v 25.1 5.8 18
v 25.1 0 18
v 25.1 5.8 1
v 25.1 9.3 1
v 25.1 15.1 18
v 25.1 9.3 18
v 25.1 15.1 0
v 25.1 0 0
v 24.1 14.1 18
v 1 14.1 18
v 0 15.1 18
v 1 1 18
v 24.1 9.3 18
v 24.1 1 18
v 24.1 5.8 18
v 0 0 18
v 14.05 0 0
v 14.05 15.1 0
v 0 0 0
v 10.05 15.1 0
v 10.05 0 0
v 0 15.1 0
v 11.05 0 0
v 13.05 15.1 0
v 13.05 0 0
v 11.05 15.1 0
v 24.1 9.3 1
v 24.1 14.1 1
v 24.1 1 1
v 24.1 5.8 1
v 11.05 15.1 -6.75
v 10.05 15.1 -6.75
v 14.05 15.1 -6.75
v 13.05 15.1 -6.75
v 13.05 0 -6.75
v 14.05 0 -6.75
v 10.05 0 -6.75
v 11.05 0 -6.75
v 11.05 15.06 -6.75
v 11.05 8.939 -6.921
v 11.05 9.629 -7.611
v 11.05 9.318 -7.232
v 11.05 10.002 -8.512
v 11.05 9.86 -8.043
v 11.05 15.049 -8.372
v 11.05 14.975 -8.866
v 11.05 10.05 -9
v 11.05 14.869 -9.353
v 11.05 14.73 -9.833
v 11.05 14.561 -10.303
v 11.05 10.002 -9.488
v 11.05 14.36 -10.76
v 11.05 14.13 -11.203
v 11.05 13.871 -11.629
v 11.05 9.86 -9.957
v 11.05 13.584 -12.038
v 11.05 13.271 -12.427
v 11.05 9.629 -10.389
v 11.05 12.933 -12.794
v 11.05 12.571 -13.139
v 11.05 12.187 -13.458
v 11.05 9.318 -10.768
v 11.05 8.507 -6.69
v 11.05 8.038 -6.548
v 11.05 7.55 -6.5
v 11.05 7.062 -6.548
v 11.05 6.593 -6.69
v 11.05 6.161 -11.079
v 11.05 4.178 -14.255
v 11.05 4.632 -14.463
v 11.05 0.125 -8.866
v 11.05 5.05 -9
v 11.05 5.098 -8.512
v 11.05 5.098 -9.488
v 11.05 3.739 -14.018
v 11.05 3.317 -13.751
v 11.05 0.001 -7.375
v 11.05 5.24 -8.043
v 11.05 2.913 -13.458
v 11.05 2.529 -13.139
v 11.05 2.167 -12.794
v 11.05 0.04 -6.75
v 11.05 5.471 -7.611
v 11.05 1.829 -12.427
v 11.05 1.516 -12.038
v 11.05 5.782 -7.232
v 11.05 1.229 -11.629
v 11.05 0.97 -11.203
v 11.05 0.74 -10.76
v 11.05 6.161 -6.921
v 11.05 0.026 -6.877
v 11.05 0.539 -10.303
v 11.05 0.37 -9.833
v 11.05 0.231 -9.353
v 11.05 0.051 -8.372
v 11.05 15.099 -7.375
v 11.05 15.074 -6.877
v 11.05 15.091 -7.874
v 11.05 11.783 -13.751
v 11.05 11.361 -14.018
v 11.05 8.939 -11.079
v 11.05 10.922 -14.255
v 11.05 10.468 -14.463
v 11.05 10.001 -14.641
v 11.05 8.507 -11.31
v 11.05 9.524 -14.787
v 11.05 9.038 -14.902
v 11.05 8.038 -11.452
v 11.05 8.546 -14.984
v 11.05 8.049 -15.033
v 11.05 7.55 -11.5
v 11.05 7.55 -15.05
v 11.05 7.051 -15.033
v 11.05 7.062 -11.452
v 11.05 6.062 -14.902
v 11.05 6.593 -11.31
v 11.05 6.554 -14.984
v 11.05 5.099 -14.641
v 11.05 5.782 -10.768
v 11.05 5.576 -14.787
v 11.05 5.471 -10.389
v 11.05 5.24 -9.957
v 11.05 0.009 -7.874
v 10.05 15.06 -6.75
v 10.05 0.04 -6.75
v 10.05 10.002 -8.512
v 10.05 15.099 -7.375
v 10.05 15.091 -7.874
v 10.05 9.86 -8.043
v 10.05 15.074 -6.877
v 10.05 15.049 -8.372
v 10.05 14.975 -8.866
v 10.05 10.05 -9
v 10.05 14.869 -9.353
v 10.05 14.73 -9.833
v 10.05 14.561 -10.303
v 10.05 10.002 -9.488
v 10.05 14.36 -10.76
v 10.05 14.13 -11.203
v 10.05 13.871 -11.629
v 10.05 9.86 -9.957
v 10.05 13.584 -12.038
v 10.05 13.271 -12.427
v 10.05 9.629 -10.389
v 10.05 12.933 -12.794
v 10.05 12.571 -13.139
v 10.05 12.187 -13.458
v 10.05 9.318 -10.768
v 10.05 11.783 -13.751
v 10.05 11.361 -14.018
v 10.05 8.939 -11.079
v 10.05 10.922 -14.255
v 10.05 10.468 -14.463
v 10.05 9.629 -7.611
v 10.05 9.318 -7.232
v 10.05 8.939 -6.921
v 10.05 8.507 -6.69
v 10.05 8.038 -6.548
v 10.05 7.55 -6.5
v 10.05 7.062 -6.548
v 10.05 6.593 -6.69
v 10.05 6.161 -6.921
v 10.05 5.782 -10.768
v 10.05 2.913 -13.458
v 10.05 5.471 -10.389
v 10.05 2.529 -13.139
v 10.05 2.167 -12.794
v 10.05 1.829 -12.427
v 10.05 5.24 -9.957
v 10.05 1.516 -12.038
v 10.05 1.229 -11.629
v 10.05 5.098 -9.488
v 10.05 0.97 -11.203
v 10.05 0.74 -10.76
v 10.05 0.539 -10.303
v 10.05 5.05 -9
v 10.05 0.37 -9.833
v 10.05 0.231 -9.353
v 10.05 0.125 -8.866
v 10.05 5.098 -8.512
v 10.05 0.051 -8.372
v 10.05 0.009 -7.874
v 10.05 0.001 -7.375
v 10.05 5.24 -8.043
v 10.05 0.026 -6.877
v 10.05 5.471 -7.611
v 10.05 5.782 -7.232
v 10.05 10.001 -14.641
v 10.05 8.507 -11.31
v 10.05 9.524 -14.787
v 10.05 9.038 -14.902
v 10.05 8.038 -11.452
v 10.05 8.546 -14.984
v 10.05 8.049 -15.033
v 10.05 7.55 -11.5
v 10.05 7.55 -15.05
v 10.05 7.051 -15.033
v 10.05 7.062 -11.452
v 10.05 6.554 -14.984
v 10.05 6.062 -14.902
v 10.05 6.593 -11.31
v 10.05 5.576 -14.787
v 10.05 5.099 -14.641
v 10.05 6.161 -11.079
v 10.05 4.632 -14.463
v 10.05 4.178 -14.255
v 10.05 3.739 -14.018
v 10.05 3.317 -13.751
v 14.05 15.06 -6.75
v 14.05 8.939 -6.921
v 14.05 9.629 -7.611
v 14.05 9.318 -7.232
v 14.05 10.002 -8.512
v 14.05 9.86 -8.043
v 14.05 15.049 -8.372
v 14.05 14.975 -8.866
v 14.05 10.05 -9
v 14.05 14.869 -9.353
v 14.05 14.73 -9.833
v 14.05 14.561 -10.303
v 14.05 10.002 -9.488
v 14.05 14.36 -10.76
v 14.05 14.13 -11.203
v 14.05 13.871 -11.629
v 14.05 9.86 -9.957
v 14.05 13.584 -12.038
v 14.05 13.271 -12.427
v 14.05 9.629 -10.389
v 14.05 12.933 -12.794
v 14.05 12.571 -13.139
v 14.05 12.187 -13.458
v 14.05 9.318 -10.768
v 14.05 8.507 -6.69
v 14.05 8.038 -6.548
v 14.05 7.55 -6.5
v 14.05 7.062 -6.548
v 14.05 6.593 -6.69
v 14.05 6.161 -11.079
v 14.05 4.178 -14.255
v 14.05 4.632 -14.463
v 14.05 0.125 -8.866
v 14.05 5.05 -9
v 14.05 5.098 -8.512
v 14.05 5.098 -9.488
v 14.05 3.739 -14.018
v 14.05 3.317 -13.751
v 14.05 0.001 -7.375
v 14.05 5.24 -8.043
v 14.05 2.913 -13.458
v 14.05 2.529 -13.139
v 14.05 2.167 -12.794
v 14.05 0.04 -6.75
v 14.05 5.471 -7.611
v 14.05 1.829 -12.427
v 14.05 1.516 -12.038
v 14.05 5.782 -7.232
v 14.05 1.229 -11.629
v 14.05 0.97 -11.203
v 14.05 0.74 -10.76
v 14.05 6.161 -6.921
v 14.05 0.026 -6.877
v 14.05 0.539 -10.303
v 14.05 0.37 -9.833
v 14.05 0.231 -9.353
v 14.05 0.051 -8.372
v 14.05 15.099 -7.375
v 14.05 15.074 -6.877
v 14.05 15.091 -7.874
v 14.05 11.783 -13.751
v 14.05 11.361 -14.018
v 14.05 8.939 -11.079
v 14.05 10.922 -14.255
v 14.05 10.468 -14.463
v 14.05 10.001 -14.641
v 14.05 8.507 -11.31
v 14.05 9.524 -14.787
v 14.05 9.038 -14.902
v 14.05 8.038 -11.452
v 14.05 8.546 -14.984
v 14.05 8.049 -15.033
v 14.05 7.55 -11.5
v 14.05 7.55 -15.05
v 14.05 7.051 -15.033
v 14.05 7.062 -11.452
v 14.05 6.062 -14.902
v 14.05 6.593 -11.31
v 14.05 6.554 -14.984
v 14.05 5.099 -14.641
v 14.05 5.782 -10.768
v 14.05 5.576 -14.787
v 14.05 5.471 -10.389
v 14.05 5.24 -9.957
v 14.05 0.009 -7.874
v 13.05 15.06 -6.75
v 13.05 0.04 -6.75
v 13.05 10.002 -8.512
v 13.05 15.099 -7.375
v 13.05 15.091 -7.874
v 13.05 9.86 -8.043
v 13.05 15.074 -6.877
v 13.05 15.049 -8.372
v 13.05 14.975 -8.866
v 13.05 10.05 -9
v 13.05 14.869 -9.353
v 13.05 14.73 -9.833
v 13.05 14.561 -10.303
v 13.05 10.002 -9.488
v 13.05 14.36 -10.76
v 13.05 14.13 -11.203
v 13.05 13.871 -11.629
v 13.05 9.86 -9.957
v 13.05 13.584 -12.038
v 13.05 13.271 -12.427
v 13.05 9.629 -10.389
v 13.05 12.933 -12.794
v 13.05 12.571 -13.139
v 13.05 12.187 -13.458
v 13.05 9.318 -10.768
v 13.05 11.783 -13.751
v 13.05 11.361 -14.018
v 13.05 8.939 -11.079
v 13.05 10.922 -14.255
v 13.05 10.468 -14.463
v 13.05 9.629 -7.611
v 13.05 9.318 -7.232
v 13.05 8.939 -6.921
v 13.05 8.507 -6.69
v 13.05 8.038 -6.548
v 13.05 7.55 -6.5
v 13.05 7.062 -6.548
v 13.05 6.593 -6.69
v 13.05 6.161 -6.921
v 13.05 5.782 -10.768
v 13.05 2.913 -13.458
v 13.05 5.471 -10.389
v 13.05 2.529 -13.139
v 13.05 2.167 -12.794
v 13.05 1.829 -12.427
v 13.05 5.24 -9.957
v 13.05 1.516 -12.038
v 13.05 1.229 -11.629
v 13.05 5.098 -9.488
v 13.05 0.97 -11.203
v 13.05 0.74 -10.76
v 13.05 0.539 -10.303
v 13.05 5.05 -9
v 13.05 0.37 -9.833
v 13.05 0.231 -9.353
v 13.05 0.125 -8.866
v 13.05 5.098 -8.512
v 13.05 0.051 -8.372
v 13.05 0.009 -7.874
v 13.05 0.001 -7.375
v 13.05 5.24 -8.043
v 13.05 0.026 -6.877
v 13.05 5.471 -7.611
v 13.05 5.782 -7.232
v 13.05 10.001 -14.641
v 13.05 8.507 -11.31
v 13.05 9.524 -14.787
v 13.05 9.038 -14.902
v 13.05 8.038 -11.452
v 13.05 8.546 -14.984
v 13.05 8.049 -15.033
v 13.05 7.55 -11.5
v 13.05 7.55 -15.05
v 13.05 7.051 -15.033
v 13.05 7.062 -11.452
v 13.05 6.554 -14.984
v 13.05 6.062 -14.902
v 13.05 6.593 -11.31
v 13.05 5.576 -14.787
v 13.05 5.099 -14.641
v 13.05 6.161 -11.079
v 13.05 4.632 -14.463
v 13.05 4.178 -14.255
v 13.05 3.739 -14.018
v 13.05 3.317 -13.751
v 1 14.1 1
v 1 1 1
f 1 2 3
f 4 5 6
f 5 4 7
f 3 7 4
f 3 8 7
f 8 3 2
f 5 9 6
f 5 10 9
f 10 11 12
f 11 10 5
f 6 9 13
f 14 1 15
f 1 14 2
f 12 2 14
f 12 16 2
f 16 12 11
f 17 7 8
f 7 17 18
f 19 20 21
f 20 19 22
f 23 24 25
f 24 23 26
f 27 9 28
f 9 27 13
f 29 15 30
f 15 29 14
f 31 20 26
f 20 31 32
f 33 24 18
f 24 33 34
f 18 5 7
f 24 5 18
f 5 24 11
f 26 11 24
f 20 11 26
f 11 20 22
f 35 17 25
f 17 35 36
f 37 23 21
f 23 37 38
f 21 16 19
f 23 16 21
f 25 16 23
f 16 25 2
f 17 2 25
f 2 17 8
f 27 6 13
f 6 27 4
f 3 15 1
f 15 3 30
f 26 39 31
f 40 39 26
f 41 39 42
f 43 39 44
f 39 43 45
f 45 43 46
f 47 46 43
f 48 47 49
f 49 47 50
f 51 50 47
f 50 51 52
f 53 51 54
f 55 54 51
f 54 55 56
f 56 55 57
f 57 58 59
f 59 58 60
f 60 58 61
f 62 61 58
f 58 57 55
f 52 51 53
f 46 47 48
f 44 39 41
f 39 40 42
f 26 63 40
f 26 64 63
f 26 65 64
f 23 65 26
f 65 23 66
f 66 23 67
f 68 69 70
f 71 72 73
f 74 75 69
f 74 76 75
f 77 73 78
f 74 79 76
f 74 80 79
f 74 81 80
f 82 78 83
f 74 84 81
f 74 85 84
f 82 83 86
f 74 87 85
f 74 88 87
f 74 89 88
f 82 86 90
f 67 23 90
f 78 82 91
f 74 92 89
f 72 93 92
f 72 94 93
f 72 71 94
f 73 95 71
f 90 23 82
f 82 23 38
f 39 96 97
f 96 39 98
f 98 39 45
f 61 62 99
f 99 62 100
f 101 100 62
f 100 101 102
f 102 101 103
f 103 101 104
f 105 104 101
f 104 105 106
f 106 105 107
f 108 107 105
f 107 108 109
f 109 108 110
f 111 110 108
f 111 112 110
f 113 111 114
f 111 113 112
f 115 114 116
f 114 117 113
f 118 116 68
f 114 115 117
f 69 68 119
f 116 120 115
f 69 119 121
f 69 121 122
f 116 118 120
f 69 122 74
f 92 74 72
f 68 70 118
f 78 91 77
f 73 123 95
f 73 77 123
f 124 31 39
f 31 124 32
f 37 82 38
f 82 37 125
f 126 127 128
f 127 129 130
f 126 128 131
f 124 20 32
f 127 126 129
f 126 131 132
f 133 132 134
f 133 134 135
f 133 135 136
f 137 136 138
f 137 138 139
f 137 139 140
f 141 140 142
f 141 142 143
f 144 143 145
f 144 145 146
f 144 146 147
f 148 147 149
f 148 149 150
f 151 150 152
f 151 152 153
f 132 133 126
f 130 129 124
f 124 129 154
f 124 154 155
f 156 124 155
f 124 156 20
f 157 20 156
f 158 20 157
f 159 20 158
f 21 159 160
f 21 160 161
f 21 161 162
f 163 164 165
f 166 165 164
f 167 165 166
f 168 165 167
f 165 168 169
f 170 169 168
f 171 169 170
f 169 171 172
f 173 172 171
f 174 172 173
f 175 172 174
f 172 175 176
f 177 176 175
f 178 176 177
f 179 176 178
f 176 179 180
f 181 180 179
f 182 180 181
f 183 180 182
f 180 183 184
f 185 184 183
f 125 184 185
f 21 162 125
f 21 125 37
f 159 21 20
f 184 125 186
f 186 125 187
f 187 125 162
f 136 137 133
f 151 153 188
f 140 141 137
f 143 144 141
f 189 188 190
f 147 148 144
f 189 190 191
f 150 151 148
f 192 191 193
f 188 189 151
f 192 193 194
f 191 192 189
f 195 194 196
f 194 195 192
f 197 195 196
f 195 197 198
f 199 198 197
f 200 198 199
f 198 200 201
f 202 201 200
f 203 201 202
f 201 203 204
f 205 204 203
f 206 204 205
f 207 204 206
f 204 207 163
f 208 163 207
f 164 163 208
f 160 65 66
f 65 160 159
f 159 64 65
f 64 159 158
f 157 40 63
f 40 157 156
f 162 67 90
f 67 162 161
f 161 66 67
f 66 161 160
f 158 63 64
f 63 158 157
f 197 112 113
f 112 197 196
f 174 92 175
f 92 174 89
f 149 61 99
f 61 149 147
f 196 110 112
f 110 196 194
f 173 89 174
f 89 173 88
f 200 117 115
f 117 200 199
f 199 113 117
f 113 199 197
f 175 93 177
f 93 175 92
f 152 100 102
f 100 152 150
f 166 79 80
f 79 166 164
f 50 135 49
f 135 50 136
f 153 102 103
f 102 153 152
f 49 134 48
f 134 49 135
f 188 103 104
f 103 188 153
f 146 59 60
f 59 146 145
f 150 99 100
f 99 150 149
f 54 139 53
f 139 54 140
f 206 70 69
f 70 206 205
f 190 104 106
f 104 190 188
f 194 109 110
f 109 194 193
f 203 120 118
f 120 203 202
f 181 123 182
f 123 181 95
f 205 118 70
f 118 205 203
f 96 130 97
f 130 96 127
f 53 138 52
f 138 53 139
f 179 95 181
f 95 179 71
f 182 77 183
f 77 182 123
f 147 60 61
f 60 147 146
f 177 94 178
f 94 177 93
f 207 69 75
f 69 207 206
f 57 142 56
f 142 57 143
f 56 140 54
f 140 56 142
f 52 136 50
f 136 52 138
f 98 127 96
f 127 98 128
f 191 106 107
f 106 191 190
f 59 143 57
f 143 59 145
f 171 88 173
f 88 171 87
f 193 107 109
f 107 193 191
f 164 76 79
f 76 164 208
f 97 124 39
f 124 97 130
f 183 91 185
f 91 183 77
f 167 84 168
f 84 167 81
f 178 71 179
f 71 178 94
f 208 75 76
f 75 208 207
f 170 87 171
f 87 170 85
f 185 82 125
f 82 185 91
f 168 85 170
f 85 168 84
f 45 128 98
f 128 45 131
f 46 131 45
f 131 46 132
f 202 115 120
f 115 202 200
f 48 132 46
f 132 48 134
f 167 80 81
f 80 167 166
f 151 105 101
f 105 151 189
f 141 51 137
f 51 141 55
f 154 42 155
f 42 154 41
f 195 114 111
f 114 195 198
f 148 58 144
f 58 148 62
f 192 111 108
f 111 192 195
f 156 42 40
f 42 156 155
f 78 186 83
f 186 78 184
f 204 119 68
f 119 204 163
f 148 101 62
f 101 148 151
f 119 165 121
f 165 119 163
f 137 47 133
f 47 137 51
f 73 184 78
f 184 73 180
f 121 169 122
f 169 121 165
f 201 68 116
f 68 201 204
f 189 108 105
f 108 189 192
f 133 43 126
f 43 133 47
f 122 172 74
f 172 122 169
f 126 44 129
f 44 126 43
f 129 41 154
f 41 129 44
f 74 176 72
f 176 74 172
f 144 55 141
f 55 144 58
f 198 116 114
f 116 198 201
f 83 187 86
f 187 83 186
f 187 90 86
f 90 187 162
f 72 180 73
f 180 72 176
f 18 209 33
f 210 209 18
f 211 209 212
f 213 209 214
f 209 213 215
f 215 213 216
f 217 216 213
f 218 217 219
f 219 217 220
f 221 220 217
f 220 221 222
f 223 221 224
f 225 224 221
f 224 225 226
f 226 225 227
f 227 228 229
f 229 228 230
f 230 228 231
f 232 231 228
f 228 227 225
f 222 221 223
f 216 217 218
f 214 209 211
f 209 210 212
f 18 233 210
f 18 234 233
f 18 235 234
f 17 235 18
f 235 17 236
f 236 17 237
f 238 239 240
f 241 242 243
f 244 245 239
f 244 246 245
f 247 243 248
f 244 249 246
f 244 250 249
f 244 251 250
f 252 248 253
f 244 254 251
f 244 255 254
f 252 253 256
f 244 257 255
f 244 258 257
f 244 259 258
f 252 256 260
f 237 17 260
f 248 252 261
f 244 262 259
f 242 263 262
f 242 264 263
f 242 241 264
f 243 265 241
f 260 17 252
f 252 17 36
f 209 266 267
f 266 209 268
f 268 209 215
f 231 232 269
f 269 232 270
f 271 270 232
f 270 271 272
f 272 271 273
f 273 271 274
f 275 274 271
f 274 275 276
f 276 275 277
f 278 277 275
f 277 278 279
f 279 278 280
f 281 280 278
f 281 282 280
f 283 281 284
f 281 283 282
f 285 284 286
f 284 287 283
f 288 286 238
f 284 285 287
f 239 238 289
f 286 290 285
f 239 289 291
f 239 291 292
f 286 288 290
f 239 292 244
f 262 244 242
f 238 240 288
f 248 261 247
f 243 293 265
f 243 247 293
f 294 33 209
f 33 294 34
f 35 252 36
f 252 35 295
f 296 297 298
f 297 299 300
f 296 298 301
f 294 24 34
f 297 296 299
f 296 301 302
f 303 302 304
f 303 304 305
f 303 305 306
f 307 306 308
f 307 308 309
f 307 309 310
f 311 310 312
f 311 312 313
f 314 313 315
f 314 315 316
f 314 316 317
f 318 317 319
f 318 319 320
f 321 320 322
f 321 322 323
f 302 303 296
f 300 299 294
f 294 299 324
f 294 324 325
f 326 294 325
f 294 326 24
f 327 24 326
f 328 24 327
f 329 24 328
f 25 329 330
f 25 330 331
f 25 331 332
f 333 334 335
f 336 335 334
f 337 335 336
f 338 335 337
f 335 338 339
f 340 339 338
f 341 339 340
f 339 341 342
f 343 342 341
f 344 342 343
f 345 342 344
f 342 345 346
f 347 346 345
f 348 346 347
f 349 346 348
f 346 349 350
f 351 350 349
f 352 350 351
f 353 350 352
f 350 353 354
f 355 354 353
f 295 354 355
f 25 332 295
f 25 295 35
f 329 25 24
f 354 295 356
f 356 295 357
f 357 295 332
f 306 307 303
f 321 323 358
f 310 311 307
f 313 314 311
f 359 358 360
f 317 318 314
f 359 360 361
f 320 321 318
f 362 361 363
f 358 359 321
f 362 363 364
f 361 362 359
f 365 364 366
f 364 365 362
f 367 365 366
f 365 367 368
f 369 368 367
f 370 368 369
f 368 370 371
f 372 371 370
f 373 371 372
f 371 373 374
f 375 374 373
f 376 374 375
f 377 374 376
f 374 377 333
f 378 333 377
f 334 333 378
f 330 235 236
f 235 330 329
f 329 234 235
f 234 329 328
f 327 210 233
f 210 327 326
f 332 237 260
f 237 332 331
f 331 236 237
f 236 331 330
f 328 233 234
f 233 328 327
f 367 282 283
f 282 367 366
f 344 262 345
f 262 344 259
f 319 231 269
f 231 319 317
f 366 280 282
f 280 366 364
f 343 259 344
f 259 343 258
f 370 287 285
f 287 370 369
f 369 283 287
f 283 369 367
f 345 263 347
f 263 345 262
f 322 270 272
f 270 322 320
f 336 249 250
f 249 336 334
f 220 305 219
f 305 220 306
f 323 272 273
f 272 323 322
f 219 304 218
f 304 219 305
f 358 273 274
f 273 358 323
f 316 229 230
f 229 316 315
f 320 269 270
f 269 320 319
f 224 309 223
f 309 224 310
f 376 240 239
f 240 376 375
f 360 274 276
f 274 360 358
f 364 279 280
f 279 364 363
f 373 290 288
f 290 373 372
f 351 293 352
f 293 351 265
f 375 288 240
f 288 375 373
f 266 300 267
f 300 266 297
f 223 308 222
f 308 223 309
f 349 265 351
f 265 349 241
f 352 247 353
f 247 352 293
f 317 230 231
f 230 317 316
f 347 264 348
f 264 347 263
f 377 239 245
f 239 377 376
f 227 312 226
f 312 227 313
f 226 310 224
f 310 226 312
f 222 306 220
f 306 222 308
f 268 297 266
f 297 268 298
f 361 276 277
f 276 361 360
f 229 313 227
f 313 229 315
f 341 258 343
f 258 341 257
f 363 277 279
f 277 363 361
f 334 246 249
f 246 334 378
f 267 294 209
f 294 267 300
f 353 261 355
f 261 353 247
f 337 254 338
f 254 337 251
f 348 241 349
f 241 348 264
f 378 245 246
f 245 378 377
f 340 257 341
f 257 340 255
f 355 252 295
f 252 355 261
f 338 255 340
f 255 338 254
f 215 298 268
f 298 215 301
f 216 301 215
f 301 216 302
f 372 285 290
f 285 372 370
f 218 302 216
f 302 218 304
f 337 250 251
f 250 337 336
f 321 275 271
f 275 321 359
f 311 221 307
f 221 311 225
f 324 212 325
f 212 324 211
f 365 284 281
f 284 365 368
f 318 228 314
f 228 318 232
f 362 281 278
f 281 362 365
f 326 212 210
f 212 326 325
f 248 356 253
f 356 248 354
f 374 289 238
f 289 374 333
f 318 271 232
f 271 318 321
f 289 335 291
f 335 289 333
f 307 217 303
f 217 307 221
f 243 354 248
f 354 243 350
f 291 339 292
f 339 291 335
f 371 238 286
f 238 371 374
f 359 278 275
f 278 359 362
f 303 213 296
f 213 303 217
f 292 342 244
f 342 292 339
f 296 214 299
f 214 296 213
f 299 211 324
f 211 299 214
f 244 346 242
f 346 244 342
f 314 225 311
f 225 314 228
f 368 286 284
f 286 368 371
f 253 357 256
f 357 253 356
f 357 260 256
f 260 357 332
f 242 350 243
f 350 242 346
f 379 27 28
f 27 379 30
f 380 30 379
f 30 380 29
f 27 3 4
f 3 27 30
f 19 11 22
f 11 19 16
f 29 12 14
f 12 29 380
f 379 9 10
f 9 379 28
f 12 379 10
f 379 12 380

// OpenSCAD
//精度
$fs=0.5;
$fa=0.5;

// 长22.6mm  宽12.4 高15.5，线宽3.5mm
//孔 5mm
space=0.5;
sgLength=22.6 + space;
sgWidth=12.6 + space;
sgHeight=15.5 + space;
lineWidth=3.5;
board=1;
cube([sgLength + board *2, sgWidth + board * 2, 1]);
cube([sgLength + board *2, 1, sgHeight + board * 2]);
translate([0, sgWidth + board, 0]) {
    cube([sgLength + board *2, 1, sgHeight + board * 2]);
}
cube([1, sgWidth + board * 2, sgHeight + board * 2]);

difference(){
    translate([sgLength + board, 0, 0]) {
        cube([1, sgWidth + board * 2, sgHeight + board * 2]);
    }
    translate([sgLength, (sgWidth - lineWidth)/2 + board, 0]) {
        cube([3, lineWidth, sgHeight + board * 3]);
    }
}



bracketSpace=2;//支撑间隔
bracketHeight=15;//支撑高度
bracketWidth=sgWidth + board * 2;//支撑宽度
bracketHole=5/2;//孔半径
holeHeight=6;//孔到盒子距离
transX=(sgLength - bracketSpace)/2;
translate([transX + 0, 0, -bracketHeight]) {
    difference() {
        translate([0, sgWidth/2 + board, 12]) {
            cube([board, bracketWidth, bracketHeight/2], center=true);
        }
        translate([0, sgWidth/2 + board, holeHeight]) rotate([0, 90, 0]) {
            cylinder(h=10, r1= bracketHole, r2= bracketHole, center=true, cy= 1);
        }
    }
    difference() {
        translate([0, sgWidth/2 + board, bracketHeight/2]) rotate([0, 90, 0]) {
            cylinder(h=board, r1= bracketWidth/2, r2= bracketWidth/2, center=true, cy= 1);
        }
        translate([0, sgWidth/2 + board, holeHeight]) rotate([0, 90, 0]) {
            cylinder(h=10, r1= bracketHole, r2= bracketHole, center=true, cy= 1);
        }
    }
}
translate([transX + bracketSpace + board, 0, -bracketHeight]) {
     difference() {
        translate([0, sgWidth/2 + board, 12]) {
            cube([board, bracketWidth, bracketHeight/2], center=true);
        }
        translate([0, sgWidth/2 + board, holeHeight]) rotate([0, 90, 0]) {
            cylinder(h=10, r1= bracketHole, r2= bracketHole, center=true, cy= 1);
        }
    }
    difference() {
        translate([0, sgWidth/2 + board, bracketHeight/2]) rotate([0, 90, 0]) {
            cylinder(h=board, r1= bracketWidth/2, r2= bracketWidth/2, center=true, cy= 1);
        }
        translate([0, sgWidth/2 + board, holeHeight]) rotate([0, 90, 0]) {
            cylinder(h=10, r1= bracketHole, r2= bracketHole, center=true, cy= 1);
        }
    }
}
